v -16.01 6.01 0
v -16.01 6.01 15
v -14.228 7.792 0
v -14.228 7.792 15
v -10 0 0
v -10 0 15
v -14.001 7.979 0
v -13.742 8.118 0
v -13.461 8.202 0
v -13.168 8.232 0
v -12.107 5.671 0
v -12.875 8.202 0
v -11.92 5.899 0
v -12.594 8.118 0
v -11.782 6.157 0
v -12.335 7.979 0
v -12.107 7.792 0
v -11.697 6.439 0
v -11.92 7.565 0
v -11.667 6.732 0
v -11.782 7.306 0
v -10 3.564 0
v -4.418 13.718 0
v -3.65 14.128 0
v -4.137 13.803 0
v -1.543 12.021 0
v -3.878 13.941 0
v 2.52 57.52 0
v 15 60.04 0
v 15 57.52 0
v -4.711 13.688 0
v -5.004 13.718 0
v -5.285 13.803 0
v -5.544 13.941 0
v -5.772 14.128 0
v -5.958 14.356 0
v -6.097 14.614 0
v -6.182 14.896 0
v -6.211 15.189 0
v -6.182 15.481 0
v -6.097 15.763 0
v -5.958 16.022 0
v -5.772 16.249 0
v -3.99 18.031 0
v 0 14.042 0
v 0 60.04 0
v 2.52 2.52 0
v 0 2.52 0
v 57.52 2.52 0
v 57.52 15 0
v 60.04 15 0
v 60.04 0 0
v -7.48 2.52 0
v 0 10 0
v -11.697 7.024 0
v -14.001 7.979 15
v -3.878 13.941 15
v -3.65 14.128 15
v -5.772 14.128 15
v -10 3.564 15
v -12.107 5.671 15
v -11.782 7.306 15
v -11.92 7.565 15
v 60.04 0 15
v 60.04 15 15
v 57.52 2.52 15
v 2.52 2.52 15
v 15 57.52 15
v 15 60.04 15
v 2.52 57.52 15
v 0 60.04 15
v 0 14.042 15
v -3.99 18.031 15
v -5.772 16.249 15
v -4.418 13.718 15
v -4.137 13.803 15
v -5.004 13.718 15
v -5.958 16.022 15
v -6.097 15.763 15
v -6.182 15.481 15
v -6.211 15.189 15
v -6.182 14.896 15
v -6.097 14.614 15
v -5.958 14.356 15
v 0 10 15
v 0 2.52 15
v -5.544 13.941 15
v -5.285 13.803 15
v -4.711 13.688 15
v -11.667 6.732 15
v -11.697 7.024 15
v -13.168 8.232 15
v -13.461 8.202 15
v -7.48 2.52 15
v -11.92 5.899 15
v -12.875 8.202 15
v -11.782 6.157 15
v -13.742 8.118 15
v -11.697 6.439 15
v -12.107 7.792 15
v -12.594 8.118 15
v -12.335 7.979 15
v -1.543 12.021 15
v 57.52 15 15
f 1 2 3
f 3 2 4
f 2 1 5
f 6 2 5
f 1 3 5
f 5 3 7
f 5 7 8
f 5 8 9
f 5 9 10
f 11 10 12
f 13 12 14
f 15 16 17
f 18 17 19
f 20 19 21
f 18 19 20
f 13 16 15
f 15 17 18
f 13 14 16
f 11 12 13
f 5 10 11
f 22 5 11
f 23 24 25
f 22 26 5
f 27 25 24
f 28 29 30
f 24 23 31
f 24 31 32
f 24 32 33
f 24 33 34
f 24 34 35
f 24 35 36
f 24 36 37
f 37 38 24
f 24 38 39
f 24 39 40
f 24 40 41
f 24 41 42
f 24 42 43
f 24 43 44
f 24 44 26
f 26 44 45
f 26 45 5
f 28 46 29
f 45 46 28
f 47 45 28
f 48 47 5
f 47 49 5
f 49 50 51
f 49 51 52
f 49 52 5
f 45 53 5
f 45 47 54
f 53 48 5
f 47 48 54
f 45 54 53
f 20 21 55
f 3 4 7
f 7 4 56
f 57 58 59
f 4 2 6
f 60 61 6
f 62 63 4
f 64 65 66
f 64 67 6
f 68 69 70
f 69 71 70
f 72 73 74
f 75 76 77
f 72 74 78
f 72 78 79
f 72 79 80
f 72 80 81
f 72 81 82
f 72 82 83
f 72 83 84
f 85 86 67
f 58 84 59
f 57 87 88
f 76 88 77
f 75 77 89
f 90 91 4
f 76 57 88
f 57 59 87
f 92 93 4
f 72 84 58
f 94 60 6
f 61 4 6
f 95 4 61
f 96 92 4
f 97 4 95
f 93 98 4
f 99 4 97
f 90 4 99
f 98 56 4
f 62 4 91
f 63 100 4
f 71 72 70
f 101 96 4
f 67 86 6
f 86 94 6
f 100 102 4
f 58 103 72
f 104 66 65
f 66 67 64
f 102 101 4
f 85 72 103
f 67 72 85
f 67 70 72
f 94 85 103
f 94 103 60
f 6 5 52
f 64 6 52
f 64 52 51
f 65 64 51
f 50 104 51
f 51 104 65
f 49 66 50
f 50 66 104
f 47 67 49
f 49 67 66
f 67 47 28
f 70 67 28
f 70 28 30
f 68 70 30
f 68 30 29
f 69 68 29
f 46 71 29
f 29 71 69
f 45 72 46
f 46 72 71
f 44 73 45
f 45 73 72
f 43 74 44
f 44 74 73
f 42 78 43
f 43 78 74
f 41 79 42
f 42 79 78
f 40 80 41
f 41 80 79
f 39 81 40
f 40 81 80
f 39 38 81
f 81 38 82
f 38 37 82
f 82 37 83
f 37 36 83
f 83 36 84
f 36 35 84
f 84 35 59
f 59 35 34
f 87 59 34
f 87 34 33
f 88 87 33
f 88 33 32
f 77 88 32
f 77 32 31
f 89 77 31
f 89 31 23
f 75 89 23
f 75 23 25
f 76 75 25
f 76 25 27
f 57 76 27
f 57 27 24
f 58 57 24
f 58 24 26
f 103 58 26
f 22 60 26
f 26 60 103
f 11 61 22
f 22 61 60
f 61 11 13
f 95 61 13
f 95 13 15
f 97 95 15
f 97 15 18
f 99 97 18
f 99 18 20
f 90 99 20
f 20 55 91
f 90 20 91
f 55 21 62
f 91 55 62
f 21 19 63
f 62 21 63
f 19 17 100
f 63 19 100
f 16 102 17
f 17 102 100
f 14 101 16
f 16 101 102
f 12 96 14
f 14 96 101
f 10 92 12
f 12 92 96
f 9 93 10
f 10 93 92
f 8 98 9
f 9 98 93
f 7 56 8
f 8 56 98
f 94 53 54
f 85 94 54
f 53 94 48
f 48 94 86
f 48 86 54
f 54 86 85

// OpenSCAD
// ikea ledberg mount for bed post
q=.00001;

module clip(h=10, x=17, y=8.5, t=2) {
	// h = height
	// x,y = clip dimensions
	// t = thickness
	linear_extrude(height=h) {
		polygon(points=[
			[0,0],
			[x,0],
			[x,y],
			[x-t,y],
			[x-t,t],
			[t,t],
			[t,y],
			[0,y],
			[0,0]
			]);
		translate([t, 7]) circle(r=1.5, $fn=32); 
		translate([x-t, 7]) circle(r=1.5, $fn=32); 
	}
}

module winkel(h=10, d=15, w=55, t=2) {
	// h = extrusion height
	// d = depth of clip ends
	// w = width of wood to clip to
	// t = structural thickness
	linear_extrude(height=h) {
		polygon(points=[
			[0,0],
			[w+t*2,0],
			[w+t*2,d],
			[w+t,d],
			[w+t,t],
			[t,t],
			[t,w+t],
			[d,w+t],
			[d,w+t*2],
			[0,w+t*2],
			[0,0]
			]);
	}
}

module halter(h=10, t=3) {
	union() {
		translate([-10-q, 0, 0]) cube(size=[10+2*q, t, h]);
		translate([-10, 0, 0]) rotate([0, 0, 45]) clip(h=h, t=t);
		winkel(h=h, t=t);
		
	}
}

halter(h=15, t=2.52);
